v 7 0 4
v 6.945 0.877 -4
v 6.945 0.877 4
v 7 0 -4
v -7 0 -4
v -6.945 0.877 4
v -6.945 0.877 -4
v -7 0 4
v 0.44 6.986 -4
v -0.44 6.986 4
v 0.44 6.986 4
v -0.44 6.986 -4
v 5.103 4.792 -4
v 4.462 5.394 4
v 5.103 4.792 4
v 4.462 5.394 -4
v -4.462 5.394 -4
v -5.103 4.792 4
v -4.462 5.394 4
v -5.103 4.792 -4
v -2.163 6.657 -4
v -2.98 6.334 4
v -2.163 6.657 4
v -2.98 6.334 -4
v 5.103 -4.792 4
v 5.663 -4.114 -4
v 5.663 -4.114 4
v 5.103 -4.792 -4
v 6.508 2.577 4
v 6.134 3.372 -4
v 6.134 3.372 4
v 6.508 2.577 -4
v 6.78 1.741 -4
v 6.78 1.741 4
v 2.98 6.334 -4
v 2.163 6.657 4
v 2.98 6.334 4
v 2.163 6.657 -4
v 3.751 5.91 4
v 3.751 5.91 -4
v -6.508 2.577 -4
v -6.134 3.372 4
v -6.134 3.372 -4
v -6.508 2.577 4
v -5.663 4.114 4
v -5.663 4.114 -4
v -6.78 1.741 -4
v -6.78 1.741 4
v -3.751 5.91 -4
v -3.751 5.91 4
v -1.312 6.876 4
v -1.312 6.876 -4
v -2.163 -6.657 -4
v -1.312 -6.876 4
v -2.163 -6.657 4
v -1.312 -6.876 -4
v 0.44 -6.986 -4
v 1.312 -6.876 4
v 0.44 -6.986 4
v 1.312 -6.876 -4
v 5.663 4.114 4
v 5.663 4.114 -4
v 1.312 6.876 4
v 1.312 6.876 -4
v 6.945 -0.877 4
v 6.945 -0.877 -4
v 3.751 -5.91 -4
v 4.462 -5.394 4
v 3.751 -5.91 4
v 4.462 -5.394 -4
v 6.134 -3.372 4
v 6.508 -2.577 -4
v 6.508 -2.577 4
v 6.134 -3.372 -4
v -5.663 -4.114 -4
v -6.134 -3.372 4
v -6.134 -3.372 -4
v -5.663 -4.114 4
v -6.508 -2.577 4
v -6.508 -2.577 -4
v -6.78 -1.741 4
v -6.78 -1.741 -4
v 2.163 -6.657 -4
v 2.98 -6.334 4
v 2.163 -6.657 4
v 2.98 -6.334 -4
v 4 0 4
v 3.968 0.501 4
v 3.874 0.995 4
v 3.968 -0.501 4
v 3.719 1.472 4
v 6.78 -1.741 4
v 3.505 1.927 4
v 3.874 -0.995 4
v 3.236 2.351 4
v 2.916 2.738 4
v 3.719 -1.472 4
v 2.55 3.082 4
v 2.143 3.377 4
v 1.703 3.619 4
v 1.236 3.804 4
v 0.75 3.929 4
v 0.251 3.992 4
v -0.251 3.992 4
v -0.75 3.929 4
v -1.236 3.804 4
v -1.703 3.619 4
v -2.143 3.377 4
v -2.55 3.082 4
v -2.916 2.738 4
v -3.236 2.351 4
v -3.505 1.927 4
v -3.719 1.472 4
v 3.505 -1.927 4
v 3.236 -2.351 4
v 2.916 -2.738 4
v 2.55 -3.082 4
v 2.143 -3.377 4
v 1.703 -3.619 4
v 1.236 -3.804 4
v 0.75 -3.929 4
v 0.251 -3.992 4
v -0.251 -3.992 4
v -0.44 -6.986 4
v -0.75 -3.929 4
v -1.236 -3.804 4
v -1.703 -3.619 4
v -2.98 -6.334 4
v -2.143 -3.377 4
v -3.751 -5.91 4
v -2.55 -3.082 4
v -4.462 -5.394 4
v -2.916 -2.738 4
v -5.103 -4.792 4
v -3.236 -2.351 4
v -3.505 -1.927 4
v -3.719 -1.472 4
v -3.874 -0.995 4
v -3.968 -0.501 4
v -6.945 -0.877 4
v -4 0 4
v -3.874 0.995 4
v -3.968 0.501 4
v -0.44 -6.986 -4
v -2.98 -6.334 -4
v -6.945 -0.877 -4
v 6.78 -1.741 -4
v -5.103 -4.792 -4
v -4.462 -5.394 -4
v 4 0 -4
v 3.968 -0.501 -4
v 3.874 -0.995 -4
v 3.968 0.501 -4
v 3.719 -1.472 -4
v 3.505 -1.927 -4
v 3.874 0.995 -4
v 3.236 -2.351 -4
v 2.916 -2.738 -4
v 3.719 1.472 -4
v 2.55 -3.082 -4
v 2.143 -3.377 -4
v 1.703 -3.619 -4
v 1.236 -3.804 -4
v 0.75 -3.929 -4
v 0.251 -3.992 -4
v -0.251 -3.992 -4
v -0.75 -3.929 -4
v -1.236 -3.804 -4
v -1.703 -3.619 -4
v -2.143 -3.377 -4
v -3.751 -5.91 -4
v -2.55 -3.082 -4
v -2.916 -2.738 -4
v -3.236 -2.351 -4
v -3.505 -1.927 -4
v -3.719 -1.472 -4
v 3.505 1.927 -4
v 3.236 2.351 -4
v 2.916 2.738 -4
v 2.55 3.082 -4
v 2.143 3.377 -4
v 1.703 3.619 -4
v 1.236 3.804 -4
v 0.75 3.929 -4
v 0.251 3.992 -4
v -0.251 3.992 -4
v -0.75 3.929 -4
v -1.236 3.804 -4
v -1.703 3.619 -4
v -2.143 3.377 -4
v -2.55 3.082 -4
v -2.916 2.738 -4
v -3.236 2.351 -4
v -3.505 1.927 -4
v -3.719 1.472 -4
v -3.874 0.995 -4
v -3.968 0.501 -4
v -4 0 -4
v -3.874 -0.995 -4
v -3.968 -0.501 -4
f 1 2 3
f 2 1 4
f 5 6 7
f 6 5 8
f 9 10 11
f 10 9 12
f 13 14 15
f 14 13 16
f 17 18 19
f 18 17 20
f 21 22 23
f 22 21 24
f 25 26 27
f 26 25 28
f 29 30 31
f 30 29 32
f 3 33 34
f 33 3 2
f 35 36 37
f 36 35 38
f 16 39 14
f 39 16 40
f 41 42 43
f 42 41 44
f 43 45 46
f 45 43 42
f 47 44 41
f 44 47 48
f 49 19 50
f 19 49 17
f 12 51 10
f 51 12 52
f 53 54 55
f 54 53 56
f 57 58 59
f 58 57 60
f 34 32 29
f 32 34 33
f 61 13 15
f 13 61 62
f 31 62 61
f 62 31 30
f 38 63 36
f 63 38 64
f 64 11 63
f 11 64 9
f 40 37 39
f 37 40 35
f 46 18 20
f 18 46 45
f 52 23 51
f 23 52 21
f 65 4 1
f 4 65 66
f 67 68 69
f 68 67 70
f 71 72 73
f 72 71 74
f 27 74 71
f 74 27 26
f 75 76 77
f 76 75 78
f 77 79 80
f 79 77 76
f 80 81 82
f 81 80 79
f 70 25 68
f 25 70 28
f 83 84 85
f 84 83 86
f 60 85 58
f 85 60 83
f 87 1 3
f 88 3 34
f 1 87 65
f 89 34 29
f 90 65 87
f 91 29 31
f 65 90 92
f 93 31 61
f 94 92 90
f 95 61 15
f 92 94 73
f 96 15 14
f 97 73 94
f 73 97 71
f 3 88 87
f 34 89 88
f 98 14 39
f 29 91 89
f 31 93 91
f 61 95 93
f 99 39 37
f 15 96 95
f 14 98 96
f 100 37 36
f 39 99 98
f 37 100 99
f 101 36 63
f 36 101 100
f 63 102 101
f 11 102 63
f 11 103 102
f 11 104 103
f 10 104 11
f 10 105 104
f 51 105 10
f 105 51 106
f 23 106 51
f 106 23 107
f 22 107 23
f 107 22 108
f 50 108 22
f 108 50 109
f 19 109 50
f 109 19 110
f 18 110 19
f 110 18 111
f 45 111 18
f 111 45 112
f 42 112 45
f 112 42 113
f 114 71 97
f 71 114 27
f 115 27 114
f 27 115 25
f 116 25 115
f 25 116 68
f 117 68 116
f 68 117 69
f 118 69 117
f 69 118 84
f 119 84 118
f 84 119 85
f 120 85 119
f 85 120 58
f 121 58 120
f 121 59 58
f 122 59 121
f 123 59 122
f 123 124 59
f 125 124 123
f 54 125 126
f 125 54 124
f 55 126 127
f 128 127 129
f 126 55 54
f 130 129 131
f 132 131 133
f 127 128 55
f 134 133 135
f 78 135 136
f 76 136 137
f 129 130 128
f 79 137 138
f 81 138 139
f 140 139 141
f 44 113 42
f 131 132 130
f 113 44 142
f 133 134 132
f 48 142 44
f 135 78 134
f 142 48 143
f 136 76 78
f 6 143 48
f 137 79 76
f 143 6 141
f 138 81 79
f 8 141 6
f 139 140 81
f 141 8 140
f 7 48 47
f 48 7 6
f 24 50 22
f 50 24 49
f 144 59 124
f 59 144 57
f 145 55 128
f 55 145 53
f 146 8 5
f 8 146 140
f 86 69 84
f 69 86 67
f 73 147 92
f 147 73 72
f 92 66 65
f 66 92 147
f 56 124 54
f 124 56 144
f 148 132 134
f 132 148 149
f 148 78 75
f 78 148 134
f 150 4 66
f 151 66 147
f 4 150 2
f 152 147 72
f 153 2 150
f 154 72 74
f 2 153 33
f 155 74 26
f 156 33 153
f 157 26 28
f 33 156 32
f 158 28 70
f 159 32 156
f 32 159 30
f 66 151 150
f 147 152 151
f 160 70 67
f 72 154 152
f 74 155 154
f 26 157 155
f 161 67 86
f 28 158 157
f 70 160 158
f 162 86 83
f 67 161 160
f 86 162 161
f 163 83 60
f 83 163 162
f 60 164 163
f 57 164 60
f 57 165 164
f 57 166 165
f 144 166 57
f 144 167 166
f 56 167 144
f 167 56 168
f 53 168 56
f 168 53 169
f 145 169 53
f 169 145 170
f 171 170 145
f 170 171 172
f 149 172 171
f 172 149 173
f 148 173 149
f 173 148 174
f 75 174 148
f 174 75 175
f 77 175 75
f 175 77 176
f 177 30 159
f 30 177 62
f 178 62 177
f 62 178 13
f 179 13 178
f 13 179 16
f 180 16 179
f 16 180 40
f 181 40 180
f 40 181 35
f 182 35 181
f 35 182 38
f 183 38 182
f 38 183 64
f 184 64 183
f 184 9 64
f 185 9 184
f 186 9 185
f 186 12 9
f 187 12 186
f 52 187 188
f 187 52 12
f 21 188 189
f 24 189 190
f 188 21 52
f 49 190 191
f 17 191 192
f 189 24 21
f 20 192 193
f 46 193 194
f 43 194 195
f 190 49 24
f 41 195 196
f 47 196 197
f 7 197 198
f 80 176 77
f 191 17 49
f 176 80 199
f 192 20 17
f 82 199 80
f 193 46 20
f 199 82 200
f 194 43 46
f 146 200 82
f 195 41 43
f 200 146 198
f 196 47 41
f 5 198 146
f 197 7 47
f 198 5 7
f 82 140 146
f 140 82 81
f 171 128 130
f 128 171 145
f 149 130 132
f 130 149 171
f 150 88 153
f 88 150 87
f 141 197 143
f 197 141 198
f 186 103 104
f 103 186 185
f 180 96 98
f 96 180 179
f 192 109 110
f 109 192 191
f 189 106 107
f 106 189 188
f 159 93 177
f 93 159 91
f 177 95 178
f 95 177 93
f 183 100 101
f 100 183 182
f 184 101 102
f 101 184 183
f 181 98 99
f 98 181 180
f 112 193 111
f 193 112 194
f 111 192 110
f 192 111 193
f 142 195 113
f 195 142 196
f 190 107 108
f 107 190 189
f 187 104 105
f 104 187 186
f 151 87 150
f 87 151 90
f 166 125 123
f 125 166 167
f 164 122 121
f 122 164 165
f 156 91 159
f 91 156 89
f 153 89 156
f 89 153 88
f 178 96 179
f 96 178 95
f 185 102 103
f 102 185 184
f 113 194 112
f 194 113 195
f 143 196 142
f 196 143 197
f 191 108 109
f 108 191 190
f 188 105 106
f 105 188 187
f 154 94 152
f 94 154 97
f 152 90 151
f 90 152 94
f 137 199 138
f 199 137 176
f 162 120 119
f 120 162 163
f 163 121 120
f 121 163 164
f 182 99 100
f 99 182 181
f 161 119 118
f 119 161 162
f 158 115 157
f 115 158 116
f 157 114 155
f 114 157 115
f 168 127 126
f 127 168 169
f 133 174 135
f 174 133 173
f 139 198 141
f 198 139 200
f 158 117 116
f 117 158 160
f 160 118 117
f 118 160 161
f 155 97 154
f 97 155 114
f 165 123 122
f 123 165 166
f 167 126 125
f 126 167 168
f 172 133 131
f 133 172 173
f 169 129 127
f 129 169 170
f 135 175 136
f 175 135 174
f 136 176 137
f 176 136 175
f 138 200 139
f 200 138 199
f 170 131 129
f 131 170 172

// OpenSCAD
$fn = 50;


difference() {
	union() {
		translate(v = [0, 0, -4.0000000000]) {
			cylinder(h = 8, r = 7.0000000000);
		}
	}
	union() {
		translate(v = [0, 0, -100.0000000000]) {
			cylinder(h = 200, r = 4.0000000000);
		}
	}
}
